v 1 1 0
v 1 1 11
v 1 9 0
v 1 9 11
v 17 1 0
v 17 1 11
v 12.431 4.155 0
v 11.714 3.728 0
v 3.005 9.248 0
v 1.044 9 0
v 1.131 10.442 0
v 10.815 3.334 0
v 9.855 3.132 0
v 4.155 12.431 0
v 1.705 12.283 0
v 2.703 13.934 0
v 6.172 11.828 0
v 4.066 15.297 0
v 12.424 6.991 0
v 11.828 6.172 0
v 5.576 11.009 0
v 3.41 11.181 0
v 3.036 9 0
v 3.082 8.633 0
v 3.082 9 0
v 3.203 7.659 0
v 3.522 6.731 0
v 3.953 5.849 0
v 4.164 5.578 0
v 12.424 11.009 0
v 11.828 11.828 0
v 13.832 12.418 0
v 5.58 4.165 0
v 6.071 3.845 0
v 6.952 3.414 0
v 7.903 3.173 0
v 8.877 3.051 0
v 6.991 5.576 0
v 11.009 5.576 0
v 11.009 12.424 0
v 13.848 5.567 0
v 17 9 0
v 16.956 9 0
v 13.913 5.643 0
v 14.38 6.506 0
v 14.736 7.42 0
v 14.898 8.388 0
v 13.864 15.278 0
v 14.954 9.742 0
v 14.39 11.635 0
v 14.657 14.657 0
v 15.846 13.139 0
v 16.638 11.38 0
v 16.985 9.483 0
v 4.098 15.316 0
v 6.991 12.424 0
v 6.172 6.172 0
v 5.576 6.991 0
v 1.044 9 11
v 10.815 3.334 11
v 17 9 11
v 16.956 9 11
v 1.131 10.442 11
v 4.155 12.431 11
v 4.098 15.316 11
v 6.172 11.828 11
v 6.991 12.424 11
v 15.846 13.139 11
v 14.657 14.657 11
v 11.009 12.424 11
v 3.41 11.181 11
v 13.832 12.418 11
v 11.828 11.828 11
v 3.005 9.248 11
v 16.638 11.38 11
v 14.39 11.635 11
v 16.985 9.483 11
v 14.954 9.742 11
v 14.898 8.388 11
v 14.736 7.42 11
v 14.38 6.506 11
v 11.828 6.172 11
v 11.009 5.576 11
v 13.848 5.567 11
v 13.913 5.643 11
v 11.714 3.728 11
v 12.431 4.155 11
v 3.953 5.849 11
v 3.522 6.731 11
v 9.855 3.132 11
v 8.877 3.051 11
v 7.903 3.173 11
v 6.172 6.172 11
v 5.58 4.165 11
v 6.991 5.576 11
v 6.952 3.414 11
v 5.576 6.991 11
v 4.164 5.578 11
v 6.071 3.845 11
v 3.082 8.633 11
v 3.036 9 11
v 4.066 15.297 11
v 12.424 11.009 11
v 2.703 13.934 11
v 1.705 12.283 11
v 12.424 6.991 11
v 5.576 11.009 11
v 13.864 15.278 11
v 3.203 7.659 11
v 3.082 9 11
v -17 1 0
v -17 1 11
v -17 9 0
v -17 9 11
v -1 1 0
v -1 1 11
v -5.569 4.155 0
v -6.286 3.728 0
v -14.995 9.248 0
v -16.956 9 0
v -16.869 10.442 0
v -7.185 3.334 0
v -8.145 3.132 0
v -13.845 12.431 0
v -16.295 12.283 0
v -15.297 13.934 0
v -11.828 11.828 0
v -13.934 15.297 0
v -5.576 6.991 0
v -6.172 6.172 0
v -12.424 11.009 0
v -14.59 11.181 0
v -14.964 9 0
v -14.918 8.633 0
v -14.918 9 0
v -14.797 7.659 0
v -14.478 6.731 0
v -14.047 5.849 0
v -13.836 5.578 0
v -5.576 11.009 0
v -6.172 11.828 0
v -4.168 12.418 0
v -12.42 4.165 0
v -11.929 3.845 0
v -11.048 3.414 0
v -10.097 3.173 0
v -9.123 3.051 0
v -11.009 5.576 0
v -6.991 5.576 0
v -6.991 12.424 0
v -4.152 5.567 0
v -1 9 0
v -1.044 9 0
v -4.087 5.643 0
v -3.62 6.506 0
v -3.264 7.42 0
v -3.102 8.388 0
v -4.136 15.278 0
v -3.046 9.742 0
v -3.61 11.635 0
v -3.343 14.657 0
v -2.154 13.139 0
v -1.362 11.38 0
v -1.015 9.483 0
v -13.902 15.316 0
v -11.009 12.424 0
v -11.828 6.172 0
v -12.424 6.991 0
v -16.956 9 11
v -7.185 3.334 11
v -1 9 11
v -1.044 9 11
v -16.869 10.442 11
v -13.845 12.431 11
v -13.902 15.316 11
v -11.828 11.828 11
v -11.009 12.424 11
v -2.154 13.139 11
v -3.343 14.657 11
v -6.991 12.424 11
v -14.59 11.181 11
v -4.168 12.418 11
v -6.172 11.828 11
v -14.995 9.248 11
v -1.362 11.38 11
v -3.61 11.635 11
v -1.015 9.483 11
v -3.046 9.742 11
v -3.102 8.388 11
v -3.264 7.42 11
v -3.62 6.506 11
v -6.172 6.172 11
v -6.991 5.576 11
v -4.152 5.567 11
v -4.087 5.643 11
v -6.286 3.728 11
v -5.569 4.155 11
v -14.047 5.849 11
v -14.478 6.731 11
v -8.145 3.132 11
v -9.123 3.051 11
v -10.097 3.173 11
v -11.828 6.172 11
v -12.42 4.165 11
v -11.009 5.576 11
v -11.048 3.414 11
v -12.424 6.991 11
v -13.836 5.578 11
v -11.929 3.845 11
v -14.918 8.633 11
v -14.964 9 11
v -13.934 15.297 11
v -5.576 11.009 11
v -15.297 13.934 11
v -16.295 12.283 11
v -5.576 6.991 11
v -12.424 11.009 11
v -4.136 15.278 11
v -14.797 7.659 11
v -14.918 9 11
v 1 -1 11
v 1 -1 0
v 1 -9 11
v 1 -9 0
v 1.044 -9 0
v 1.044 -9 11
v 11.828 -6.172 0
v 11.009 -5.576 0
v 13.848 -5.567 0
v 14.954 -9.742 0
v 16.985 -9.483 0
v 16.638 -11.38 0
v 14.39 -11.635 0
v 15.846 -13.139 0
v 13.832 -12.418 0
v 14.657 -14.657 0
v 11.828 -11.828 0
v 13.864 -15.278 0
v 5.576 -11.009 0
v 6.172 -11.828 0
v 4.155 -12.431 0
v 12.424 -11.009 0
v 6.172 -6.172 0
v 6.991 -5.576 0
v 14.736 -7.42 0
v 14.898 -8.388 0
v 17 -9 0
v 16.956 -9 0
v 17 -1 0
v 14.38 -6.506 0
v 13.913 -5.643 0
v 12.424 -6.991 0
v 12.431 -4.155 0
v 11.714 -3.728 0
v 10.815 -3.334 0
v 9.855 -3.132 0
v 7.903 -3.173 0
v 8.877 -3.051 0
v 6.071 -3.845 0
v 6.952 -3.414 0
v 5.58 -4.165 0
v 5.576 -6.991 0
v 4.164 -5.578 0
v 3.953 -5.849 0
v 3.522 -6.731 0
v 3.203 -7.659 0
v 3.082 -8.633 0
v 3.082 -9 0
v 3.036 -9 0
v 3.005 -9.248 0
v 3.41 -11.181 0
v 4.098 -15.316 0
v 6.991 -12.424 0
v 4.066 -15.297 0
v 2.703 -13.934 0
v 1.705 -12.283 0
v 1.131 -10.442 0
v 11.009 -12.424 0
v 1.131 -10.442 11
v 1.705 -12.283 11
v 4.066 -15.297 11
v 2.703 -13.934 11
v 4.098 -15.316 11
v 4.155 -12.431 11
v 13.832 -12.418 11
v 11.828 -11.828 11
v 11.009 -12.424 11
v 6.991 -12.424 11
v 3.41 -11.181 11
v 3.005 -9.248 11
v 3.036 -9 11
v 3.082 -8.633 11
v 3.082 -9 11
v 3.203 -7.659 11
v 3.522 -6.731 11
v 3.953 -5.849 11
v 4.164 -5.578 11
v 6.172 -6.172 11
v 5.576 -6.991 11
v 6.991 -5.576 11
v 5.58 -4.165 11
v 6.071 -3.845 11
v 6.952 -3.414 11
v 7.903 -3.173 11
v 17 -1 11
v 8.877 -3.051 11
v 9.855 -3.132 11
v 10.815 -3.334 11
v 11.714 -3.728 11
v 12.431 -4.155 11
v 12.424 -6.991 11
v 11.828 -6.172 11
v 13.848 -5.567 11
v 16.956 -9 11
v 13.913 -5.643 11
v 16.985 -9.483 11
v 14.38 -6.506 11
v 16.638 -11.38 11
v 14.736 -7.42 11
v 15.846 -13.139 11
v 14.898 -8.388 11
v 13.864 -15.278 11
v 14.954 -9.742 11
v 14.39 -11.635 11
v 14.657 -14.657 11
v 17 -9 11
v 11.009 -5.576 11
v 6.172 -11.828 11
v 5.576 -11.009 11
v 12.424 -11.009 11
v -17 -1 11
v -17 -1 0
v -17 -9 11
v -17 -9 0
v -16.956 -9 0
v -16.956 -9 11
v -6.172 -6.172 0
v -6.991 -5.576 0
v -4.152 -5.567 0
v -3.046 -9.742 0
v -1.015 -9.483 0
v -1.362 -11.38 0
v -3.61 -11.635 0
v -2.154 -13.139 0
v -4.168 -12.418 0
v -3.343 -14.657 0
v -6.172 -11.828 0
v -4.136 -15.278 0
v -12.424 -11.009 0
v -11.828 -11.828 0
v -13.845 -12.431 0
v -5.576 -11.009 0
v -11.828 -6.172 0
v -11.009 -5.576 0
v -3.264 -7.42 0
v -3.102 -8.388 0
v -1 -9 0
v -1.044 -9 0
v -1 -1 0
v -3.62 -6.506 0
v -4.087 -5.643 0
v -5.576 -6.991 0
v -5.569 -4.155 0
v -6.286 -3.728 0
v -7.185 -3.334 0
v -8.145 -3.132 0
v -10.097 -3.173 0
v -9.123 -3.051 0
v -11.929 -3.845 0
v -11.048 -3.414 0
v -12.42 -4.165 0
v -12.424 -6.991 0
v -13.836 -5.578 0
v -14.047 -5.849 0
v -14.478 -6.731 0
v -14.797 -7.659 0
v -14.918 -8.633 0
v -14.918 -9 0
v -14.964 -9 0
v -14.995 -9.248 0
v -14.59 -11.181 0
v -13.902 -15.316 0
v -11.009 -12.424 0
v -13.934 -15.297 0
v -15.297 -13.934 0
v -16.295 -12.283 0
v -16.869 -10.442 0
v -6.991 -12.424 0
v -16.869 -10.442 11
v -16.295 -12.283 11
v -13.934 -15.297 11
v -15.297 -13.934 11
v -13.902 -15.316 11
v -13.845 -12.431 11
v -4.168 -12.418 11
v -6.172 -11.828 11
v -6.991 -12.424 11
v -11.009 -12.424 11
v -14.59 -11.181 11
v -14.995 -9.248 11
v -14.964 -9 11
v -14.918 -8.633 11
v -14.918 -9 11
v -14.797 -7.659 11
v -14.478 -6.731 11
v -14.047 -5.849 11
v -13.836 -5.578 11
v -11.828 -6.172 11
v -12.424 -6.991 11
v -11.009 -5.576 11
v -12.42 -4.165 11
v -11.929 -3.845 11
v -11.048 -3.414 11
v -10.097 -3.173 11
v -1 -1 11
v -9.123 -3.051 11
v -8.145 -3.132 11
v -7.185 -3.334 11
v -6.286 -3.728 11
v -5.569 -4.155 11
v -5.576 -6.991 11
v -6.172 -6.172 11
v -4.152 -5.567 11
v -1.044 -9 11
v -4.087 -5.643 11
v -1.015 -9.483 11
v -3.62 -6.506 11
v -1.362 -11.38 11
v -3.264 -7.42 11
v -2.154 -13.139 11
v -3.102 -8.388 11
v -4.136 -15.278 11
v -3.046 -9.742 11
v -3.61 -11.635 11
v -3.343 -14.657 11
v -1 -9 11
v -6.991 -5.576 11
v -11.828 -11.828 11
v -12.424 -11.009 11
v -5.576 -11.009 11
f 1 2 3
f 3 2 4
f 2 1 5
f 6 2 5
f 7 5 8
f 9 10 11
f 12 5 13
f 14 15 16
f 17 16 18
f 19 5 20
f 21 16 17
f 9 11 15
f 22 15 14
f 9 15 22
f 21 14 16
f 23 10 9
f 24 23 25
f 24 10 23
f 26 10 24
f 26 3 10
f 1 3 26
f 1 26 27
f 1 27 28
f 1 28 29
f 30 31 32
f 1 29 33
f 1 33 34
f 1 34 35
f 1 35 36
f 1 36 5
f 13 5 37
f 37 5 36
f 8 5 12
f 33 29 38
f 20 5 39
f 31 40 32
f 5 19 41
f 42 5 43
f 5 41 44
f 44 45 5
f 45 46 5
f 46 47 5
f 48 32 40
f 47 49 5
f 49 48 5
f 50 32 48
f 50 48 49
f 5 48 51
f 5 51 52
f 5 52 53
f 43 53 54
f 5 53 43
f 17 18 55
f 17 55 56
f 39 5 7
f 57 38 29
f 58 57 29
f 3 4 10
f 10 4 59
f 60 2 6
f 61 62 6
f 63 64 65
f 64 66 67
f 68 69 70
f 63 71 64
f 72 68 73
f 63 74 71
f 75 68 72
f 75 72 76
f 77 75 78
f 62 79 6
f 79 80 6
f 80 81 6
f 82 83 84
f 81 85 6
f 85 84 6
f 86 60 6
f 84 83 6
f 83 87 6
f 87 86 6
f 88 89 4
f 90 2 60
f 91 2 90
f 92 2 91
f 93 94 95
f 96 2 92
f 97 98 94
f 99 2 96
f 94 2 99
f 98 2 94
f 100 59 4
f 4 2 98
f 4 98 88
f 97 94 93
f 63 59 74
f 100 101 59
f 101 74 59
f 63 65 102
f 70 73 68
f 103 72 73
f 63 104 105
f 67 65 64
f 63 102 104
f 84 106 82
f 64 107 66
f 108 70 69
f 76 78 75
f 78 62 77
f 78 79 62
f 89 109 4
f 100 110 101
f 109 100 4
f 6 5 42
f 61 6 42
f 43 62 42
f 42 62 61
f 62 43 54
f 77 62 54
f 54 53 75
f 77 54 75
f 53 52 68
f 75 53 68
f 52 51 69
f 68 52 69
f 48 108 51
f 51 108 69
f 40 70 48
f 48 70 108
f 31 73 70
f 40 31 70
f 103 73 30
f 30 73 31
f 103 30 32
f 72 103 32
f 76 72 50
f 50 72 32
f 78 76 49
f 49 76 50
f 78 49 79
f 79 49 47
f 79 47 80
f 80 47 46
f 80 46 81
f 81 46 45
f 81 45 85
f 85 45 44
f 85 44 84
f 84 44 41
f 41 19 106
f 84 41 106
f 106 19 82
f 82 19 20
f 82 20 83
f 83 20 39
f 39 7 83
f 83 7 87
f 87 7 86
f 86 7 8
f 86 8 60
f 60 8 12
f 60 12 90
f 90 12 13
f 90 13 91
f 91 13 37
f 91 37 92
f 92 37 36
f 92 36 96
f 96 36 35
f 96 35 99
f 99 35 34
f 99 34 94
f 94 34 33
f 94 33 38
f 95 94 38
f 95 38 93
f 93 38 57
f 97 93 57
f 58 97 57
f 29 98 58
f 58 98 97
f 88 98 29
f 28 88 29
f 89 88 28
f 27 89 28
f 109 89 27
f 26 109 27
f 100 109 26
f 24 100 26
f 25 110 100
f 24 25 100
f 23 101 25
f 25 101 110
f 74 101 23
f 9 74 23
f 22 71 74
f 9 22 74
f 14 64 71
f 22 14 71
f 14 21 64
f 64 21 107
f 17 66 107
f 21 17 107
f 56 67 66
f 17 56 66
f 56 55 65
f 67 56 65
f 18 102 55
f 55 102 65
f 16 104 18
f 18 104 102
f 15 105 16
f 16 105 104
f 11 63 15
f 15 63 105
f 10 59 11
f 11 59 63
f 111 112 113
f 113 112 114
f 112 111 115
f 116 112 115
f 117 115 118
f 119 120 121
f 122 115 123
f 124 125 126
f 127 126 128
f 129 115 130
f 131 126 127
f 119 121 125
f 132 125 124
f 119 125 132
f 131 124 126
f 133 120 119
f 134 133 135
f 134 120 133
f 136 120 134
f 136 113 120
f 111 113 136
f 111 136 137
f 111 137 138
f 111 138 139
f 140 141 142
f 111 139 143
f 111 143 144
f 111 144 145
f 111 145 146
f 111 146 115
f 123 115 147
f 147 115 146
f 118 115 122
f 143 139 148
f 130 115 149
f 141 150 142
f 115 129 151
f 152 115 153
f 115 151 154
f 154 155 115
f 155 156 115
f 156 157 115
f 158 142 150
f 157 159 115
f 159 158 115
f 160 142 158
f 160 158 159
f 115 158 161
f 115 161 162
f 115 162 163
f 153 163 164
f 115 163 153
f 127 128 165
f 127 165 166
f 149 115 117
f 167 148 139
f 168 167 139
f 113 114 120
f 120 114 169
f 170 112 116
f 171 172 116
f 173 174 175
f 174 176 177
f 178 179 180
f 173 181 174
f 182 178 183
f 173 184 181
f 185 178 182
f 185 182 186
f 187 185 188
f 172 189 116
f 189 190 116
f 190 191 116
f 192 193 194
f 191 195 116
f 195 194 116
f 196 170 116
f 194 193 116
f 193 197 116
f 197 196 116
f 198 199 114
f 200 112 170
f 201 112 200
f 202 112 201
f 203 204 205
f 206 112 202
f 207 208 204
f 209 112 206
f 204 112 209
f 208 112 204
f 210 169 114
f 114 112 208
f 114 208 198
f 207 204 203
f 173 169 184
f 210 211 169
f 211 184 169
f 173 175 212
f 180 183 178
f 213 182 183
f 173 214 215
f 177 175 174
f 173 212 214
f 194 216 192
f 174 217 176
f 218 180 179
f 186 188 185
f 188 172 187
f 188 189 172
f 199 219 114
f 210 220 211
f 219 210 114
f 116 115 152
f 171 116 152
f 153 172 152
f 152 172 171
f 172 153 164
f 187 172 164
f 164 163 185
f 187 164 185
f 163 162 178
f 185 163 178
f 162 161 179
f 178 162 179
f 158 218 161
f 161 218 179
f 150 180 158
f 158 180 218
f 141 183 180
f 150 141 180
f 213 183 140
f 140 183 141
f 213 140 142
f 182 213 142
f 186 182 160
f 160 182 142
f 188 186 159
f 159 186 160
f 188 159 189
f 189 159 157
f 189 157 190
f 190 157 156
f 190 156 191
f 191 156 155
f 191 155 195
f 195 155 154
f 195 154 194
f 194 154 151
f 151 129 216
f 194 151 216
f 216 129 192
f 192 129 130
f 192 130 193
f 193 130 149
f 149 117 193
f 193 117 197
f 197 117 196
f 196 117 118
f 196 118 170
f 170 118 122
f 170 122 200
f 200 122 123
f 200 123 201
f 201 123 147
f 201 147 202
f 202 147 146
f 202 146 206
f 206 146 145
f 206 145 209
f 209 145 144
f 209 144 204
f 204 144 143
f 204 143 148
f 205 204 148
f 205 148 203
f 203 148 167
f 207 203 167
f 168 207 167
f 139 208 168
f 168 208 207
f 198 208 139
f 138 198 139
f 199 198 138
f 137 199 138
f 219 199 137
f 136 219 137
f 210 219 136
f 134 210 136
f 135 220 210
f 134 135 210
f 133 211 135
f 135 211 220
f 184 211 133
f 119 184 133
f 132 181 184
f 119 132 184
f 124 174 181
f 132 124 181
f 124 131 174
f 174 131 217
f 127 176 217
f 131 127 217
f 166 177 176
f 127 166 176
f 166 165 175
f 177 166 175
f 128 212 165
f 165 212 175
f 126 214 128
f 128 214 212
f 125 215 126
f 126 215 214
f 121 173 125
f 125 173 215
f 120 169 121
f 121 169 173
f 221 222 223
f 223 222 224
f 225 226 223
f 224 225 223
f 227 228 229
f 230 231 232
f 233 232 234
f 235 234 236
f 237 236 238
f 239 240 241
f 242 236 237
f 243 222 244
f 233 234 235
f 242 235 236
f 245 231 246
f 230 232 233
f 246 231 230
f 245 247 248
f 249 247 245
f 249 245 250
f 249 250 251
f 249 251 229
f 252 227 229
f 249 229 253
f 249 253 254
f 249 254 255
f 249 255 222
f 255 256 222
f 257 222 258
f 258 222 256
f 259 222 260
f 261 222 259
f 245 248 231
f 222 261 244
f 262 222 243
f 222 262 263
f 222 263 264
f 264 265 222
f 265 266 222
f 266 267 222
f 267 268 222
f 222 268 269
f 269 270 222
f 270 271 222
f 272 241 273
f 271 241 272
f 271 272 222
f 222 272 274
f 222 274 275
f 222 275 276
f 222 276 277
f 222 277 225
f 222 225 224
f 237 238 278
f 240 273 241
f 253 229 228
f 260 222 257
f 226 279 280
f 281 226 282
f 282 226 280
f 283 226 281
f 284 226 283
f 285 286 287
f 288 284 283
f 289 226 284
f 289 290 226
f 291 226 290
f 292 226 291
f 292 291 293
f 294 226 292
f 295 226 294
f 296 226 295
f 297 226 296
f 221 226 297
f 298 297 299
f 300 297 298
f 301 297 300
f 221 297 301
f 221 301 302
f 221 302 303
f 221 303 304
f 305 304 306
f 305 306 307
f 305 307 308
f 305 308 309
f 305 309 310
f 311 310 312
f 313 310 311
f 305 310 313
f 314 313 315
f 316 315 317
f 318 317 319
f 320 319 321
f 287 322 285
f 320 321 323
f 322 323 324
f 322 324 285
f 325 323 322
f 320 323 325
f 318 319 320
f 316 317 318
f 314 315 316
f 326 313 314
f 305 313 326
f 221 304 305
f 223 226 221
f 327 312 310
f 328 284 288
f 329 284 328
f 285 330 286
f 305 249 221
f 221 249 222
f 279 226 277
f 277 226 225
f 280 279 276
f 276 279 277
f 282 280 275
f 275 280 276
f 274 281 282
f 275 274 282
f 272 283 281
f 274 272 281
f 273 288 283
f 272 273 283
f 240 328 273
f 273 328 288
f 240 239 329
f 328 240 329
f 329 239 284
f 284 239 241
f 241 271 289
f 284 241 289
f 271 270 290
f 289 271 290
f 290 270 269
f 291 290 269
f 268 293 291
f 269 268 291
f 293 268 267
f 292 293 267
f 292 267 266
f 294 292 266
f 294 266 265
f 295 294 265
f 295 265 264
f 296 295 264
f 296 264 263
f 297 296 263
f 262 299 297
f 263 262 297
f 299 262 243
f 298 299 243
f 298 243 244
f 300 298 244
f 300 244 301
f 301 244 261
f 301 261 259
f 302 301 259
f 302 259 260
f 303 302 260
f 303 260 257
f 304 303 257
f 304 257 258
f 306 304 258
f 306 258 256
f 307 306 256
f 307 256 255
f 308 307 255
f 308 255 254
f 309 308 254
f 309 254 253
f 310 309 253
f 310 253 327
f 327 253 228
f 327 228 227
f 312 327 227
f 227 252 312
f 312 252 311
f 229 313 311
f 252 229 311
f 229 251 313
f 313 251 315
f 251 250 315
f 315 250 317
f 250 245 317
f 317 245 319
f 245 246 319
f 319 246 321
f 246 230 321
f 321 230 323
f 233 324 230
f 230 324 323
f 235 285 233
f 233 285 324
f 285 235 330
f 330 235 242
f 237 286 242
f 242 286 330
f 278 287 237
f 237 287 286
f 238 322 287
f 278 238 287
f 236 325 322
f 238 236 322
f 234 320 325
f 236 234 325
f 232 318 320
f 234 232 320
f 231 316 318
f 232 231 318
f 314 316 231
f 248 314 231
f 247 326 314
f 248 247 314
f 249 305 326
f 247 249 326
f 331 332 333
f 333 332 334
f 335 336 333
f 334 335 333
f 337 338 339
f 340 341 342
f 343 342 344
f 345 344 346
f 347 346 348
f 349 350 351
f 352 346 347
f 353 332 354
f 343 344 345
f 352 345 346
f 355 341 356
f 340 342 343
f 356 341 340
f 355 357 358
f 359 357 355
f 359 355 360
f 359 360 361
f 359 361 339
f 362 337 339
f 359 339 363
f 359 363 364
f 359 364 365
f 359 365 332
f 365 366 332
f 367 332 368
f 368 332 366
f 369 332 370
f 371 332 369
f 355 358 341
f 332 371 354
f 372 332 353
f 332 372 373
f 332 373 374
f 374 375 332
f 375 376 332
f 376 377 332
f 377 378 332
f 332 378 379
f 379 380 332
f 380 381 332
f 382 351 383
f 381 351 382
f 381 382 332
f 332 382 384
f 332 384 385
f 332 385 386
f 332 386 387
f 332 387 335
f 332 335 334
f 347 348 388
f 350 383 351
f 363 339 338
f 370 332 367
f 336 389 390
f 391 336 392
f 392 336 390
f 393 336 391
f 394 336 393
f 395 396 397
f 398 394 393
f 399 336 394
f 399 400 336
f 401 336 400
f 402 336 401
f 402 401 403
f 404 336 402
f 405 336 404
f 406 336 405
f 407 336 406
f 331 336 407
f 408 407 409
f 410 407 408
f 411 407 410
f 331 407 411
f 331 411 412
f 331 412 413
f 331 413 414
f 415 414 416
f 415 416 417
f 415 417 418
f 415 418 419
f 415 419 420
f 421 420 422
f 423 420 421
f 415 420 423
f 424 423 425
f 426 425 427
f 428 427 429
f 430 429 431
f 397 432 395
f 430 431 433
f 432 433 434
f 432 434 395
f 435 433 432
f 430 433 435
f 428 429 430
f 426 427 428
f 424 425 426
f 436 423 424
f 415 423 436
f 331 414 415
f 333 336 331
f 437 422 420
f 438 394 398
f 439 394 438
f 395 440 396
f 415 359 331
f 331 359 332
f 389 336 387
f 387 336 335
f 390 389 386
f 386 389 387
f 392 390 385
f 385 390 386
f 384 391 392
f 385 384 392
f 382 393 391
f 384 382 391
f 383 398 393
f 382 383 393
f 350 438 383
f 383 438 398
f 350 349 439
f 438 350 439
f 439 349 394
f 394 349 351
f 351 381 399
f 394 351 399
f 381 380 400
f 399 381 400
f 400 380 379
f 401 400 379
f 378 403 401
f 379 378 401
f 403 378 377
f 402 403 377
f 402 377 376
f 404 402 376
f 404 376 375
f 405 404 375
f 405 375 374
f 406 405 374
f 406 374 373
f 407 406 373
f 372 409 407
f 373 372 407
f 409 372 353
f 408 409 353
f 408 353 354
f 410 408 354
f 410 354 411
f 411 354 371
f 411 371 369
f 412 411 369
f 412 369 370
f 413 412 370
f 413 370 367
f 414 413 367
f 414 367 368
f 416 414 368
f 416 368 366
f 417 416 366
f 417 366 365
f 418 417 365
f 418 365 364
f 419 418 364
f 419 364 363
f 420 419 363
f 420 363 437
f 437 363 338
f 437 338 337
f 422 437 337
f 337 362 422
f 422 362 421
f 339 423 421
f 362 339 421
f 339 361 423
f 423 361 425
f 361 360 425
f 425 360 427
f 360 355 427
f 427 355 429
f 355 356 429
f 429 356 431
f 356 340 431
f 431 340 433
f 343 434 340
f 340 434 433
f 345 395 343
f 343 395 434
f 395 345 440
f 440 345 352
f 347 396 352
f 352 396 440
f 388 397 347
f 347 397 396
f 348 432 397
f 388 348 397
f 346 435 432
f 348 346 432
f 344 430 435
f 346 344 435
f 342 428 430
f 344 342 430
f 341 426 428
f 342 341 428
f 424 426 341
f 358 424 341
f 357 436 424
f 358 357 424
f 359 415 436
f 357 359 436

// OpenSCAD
// PRUSA Mendel  
// Bushings
// GNU GPL v2
// Josef Průša
// josefprusa@me.com
// prusadjs.cz
// http://www.reprap.org/wiki/Prusa_Mendel
// http://github.com/prusajr/PrusaMendel

// Print them in PLA and glue them to place
// if they are too tight, define bigger rodsize
// or you can try to sand a bt off


rodsize = 8;
outerDiameter = 16;
lenght = 11;

module bushing(){

union(){
difference(){
union(){
translate(v=[0,-outerDiameter/4,lenght/2]) cube(size = [outerDiameter, outerDiameter/2,lenght], center = true);
//translate(v=[0,-outerDiameter/4-1,0.5]) cube(size = [outerDiameter+4, outerDiameter/2+2,1], center = true);
}

translate(v=[0,0,-1]) cylinder(h = lenght+2, r=(outerDiameter/2)-2);
}
rotate(a=[0,0,45])
difference(){
union(){
//outer ring
difference(){
union(){
cylinder(h = lenght, r=outerDiameter/2); //1mm lemování
//cylinder(h = 1, r=outerDiameter/2+2);
}
translate(v=[0,0,-1]) cylinder(h = lenght+2, r=(outerDiameter/2)-2);
}

//nipples inside touching the rod
difference(){
	union(){
		translate(v=[0,0,lenght/2]) cube(size = [outerDiameter-1,2,lenght], center = true);
		translate(v=[0,0,lenght/2]) cube(size = [2,outerDiameter-1,lenght], center = true);
	}
	translate(v=[0,0,-1]) cylinder(h = lenght+2, r=rodsize/2, $fn=20);
}
}
//opening cutout
translate(v=[(outerDiameter/2)+1,(outerDiameter/2)+1,(lenght)/2]) cube(size = [outerDiameter,outerDiameter,lenght+2], center = true);
}}
}

union(){
translate(v=[9,9,0]) bushing();
translate(v=[-9,9,0]) bushing();
translate(v=[9,-9,0]) mirror([ 0, 1, 0 ]) bushing();
translate(v=[-9,-9,0]) mirror([ 0, 1, 0 ]) bushing();
}
